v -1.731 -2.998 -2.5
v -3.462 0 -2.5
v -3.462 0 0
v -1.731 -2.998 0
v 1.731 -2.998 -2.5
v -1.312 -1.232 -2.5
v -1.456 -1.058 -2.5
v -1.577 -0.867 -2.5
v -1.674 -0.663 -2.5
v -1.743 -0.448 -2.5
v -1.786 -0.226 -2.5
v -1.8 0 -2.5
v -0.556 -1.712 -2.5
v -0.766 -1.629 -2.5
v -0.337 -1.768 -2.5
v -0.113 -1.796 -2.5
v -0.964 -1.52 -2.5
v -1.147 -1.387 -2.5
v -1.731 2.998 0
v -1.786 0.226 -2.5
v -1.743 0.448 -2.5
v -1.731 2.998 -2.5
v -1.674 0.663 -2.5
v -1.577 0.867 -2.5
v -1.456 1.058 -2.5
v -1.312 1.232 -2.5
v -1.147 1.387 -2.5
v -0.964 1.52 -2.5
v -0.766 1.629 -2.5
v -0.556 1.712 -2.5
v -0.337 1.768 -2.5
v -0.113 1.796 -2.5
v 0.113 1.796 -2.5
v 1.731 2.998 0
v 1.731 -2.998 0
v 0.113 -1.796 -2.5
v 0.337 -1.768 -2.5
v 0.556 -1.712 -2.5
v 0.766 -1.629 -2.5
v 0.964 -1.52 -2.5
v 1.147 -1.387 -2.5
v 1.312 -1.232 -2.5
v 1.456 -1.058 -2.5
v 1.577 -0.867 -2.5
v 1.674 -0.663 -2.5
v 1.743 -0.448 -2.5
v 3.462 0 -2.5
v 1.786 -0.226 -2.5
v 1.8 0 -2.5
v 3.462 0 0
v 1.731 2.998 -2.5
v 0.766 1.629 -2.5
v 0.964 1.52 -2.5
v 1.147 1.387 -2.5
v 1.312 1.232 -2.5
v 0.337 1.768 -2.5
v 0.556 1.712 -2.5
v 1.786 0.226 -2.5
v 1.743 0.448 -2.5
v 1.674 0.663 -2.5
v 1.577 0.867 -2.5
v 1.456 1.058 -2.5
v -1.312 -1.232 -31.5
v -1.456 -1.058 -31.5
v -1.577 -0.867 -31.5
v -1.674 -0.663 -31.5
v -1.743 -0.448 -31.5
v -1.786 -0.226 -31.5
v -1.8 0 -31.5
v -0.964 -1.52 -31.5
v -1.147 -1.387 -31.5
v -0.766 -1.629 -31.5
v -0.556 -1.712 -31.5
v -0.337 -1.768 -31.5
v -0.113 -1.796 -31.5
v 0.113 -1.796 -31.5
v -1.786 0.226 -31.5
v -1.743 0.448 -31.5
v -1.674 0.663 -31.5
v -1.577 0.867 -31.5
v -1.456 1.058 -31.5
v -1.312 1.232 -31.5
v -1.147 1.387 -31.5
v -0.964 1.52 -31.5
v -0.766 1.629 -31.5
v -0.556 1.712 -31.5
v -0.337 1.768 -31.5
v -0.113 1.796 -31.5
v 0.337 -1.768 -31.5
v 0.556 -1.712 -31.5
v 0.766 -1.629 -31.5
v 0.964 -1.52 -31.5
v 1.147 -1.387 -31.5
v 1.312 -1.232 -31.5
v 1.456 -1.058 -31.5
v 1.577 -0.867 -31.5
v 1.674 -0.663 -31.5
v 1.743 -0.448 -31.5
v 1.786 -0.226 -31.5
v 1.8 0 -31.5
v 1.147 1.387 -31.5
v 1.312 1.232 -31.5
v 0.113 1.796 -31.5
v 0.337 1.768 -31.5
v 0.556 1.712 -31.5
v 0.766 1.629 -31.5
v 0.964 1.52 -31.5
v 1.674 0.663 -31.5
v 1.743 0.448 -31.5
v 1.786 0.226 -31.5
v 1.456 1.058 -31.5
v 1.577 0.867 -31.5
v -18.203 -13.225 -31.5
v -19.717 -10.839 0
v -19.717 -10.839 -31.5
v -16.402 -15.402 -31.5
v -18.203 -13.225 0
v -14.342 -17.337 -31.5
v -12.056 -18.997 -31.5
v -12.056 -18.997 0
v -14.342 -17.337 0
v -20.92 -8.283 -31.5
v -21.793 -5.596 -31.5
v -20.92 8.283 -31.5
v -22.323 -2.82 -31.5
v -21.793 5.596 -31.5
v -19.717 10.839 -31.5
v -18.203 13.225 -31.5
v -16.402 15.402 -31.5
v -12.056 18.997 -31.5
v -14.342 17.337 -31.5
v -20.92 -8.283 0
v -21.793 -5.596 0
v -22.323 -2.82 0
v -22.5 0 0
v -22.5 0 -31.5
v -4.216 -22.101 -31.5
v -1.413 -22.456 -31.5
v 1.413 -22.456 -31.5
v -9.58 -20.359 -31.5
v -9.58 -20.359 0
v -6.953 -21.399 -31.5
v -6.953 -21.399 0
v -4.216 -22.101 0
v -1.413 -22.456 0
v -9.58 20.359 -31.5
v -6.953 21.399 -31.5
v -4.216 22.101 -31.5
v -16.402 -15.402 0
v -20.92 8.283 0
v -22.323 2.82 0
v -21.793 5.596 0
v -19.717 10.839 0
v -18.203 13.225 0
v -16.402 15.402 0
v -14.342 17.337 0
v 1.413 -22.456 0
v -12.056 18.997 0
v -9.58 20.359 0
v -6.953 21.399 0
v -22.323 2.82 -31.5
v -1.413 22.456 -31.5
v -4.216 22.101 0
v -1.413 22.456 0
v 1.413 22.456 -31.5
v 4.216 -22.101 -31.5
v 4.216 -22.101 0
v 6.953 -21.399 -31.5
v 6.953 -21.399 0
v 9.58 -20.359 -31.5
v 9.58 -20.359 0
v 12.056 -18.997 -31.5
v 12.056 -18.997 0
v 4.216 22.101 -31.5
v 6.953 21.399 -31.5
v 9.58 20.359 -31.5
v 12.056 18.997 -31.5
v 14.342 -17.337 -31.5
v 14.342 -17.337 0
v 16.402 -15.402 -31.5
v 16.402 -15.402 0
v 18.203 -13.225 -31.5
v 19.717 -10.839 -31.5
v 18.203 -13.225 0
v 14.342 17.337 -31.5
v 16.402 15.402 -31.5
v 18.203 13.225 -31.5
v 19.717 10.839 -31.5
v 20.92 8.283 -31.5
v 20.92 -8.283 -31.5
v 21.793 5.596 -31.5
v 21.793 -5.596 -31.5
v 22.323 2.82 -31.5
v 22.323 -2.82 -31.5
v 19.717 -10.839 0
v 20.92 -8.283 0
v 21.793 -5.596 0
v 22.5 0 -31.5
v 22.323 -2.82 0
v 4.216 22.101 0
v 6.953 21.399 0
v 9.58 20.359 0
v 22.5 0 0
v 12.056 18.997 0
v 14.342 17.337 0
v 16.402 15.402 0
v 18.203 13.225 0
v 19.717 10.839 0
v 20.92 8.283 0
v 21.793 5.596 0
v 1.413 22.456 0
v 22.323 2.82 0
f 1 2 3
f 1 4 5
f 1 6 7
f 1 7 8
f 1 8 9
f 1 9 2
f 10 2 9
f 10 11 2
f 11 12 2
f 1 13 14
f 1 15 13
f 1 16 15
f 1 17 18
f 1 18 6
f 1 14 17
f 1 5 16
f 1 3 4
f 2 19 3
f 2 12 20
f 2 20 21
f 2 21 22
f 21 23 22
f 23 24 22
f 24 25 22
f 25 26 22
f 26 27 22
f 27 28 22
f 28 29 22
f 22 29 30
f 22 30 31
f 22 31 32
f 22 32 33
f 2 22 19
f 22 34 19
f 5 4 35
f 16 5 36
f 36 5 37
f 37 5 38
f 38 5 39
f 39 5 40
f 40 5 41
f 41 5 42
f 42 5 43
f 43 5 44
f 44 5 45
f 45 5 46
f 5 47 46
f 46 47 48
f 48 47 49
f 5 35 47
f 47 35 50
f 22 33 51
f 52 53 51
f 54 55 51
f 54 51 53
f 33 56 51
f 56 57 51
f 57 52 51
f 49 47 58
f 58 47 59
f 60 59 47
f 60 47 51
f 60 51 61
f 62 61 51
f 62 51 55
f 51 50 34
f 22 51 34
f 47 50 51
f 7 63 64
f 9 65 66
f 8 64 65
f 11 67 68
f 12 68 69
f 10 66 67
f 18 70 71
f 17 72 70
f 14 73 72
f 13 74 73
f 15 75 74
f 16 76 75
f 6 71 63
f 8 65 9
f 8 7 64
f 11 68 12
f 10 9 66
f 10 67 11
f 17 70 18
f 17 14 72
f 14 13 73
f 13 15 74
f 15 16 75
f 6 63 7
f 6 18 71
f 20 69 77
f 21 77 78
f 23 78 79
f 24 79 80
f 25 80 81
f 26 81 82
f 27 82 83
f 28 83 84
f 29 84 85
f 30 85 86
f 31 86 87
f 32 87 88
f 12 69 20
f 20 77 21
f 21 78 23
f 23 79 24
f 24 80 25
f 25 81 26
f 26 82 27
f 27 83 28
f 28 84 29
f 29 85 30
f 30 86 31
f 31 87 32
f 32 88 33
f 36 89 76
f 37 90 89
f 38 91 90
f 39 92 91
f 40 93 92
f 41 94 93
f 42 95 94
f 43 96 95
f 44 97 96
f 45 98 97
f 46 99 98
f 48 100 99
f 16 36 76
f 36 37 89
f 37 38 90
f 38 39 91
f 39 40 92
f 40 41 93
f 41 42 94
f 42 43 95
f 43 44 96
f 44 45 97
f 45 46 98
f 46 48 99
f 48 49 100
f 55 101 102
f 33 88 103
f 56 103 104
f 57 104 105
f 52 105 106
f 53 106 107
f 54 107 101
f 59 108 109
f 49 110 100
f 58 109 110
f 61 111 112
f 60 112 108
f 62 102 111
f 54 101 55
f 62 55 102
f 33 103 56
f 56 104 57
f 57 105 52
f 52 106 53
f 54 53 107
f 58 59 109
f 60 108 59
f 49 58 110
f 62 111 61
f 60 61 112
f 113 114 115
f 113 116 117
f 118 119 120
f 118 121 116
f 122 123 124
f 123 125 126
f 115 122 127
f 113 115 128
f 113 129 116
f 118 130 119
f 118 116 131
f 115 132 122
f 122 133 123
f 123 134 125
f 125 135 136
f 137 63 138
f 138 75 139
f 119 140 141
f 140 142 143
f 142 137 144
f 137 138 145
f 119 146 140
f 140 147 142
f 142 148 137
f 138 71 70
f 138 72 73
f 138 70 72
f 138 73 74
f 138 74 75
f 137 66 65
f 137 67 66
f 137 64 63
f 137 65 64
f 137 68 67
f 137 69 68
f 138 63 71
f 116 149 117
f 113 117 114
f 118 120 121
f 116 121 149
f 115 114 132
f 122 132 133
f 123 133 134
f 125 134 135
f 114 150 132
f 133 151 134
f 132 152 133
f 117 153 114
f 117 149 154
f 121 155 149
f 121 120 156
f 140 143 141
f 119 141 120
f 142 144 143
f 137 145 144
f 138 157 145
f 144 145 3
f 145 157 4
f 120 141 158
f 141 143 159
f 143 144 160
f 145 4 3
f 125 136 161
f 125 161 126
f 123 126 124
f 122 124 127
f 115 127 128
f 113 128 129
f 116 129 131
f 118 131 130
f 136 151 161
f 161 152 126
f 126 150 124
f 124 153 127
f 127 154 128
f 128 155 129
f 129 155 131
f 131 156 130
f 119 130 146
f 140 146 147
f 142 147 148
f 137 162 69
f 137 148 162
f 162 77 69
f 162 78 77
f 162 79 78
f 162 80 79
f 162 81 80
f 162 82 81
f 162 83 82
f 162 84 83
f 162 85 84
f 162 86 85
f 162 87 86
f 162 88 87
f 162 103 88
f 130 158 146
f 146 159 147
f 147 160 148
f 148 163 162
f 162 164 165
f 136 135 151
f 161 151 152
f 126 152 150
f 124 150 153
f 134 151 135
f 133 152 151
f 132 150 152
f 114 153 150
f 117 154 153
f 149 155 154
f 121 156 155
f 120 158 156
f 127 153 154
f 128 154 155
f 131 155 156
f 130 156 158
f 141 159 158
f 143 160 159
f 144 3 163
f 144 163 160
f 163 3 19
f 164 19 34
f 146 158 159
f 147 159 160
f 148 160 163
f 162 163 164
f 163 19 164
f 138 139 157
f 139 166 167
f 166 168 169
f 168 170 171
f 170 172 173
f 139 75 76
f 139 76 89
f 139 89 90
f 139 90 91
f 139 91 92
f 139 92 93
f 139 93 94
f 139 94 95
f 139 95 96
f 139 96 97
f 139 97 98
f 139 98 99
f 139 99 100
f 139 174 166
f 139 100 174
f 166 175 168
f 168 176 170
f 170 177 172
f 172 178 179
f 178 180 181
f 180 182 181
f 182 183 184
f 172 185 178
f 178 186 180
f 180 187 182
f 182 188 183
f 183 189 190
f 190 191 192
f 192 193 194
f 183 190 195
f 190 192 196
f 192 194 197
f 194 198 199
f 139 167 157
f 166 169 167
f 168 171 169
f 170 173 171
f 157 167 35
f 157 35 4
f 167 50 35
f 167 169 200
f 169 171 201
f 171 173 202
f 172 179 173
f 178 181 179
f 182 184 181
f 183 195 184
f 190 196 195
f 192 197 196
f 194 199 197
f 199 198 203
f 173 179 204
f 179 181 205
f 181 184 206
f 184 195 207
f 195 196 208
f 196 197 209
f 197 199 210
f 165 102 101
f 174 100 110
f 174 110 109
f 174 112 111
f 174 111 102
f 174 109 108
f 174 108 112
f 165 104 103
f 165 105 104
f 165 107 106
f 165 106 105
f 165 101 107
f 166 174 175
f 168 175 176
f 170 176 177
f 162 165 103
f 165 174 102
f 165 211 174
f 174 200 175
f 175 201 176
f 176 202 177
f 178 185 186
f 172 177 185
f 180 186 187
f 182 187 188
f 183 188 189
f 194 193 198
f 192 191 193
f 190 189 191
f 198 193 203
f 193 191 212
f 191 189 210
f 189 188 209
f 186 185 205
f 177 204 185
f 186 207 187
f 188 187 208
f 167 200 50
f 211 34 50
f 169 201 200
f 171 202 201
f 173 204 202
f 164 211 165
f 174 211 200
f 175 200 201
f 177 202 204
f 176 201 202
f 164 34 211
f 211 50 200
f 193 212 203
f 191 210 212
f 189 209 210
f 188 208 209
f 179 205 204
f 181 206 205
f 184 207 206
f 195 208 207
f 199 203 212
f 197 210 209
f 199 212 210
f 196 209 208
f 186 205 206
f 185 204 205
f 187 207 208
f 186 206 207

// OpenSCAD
$fn = 50;

difference() {
	union() {
		translate(v = [0, 0, -31.5]) {
			cylinder(h = 31.5, r = 22.5);
		}
	}
	union() {
		translate(v = [0, 0, 0]) {
			rotate(a = [0, 0, 0]) {
				difference() {
					union() {
						translate(v = [0, 0, -2.5]) {
							linear_extrude(height = 2.5) {
								polygon(points = [[3.4619999999999997, 0.0], [1.7310000000000003, 2.9981799479017264], [-1.7309999999999992, 2.9981799479017264], [-3.4619999999999997, 4.2397272186481365e-16], [-1.7310000000000014, -2.998179947901726], [1.7309999999999977, -2.9981799479017277]]);
							}
						}
					}
					union();
				}
			}
		}
		#translate(v = [0, 0, -100.0]) {
			cylinder(h = 200, r = 1.8);
		}
	}
}
